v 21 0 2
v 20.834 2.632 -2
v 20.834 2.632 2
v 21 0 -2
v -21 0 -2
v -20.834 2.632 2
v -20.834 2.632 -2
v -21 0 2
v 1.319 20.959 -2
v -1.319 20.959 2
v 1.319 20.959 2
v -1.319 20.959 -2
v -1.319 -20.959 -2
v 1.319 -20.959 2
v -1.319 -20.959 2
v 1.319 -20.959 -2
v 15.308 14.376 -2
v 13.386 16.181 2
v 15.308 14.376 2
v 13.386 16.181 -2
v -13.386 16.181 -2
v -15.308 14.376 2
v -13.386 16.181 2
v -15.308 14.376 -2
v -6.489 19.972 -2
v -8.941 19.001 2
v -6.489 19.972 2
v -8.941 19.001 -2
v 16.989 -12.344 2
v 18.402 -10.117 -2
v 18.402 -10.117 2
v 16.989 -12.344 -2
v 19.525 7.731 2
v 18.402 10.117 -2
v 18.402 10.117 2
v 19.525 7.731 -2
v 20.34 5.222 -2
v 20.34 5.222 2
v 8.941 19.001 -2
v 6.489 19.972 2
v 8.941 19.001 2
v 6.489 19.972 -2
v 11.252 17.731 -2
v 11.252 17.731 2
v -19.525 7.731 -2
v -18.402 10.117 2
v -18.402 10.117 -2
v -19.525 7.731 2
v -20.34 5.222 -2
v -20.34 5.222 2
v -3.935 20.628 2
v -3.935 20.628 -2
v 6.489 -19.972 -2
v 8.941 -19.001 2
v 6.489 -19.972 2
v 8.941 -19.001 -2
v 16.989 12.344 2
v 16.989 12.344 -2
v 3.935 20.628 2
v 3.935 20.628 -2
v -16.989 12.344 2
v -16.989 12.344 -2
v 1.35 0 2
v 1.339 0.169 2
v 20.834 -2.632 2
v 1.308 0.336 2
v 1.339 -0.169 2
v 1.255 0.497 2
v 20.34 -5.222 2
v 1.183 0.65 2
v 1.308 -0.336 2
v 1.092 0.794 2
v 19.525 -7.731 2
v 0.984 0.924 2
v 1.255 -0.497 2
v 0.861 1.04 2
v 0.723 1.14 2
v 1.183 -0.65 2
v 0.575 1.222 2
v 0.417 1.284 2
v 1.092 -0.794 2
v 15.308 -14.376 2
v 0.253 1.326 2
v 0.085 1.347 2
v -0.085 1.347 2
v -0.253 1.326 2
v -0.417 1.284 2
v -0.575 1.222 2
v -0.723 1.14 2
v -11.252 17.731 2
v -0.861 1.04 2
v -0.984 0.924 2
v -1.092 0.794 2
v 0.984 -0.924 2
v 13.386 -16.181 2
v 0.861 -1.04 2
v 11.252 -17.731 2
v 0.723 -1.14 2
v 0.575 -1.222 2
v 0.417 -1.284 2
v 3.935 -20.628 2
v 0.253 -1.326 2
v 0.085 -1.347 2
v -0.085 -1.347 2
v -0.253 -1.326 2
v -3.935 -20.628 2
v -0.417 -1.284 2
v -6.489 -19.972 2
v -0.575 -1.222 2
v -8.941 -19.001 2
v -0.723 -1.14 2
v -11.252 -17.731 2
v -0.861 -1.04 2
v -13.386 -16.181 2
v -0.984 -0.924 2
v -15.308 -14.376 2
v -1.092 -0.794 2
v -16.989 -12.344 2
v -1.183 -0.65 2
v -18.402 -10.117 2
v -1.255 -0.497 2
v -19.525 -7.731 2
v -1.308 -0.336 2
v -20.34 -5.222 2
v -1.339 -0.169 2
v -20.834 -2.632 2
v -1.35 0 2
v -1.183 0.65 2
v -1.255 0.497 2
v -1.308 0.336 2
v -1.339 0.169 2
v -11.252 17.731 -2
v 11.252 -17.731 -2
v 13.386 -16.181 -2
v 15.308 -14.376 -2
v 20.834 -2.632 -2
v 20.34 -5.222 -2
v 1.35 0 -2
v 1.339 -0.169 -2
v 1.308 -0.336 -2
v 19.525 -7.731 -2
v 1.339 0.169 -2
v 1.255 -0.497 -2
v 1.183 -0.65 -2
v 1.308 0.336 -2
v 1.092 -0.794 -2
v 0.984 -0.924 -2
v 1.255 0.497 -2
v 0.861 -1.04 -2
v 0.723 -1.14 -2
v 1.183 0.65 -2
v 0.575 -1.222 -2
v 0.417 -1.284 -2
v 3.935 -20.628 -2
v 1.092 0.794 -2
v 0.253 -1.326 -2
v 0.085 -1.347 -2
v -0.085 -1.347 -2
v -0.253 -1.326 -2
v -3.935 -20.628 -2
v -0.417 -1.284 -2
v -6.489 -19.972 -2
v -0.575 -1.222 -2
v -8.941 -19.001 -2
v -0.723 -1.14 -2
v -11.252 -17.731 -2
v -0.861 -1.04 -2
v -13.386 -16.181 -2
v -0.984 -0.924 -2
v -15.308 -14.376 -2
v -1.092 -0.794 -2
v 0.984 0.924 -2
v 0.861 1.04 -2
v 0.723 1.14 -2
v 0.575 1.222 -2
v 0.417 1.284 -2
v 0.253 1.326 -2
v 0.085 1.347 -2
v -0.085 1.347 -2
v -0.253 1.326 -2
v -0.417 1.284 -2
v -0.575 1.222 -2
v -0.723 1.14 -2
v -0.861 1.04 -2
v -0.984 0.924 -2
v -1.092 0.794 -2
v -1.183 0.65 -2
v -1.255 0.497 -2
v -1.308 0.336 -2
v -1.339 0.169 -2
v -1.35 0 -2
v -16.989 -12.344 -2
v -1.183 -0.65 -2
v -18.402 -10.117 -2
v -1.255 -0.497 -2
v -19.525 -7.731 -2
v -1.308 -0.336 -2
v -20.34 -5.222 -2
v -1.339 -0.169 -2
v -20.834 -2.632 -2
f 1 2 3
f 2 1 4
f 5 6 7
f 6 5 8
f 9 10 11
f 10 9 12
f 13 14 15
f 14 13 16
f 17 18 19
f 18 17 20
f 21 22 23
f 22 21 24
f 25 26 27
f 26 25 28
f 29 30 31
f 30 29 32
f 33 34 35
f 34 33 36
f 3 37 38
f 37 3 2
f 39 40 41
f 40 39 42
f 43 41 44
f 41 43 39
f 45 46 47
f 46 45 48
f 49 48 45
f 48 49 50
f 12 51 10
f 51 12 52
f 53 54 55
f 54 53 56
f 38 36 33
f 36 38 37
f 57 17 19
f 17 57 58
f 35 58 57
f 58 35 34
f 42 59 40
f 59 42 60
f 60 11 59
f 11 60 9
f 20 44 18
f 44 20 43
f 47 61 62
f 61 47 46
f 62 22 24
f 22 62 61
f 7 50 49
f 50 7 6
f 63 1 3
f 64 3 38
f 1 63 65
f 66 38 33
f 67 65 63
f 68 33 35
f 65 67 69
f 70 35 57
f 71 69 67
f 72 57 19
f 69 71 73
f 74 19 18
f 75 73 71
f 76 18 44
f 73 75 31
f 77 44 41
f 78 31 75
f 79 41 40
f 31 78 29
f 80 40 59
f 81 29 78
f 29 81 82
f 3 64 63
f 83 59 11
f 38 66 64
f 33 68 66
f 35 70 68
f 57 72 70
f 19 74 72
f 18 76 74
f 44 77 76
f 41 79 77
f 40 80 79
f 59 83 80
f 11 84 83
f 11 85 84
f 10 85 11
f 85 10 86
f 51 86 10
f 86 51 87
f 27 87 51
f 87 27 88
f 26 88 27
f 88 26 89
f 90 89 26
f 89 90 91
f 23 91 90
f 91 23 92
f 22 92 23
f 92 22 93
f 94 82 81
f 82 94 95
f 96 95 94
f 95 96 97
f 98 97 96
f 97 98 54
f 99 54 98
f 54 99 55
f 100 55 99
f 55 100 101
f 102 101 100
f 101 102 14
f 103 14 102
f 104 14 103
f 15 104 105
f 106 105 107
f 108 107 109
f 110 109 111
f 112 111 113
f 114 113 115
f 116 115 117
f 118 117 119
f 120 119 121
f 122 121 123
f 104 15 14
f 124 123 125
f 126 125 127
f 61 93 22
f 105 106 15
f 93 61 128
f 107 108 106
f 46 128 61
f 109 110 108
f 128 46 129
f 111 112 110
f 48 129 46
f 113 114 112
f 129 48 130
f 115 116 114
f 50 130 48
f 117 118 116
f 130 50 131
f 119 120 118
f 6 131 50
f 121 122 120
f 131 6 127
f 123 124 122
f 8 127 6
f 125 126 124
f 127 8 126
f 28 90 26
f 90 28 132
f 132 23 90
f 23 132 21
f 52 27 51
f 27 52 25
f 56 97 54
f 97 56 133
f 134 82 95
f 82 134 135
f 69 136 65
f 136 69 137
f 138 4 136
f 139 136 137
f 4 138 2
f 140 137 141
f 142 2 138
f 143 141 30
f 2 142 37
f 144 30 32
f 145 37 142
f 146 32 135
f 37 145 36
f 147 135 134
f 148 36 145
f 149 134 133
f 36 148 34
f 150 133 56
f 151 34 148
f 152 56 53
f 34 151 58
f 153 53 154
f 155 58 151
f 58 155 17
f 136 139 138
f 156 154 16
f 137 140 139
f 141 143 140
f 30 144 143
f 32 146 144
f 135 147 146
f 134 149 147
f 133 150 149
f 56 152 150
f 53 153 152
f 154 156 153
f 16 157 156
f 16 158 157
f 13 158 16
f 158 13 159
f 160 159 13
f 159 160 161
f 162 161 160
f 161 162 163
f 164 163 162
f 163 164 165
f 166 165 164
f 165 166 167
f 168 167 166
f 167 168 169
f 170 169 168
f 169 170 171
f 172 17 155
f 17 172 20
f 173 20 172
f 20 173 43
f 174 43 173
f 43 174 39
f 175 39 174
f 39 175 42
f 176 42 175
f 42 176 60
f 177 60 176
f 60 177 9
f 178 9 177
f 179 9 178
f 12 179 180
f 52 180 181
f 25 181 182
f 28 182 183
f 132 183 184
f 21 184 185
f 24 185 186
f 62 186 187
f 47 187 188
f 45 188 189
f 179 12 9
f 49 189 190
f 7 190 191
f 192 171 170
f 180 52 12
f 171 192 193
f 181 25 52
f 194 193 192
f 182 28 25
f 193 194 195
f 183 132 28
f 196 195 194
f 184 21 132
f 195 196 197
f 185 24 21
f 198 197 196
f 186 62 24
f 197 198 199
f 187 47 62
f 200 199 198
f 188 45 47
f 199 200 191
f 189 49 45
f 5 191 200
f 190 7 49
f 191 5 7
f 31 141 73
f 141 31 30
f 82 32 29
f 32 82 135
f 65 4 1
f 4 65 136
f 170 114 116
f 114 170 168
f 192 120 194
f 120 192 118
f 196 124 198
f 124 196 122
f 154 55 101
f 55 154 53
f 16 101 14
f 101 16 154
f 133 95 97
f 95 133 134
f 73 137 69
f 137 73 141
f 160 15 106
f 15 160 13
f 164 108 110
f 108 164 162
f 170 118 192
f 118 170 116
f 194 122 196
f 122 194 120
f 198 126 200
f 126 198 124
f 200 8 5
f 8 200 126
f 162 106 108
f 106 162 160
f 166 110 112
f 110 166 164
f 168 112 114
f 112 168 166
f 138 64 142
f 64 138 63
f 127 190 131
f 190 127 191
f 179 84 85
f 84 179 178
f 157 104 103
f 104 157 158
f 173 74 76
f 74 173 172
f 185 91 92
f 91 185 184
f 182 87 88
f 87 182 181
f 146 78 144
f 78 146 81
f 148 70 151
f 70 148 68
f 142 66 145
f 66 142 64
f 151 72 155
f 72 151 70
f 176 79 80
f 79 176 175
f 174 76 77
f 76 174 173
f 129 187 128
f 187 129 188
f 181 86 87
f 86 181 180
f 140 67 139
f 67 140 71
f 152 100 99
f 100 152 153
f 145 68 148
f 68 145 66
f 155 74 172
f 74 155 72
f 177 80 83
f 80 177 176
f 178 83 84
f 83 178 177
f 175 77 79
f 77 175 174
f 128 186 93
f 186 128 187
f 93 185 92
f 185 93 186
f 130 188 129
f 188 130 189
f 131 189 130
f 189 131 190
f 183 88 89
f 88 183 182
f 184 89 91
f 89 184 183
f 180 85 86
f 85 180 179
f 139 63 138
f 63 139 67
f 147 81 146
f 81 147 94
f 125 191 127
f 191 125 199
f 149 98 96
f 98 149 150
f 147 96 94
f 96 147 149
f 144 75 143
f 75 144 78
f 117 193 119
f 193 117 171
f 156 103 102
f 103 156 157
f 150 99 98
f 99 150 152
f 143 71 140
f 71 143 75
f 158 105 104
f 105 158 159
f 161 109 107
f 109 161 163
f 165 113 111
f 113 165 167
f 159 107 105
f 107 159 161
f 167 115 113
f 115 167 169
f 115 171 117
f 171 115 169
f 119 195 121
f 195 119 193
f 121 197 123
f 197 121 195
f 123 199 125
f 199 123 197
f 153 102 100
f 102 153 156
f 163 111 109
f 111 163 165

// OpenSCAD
$fn = 50;


difference() {
	union() {
		translate(v = [0, 0, -2.0000000000]) {
			cylinder(h = 4, r = 21.0000000000);
		}
	}
	union() {
		translate(v = [0, 0, -100.0000000000]) {
			cylinder(h = 200, r = 1.3500000000);
		}
	}
}
